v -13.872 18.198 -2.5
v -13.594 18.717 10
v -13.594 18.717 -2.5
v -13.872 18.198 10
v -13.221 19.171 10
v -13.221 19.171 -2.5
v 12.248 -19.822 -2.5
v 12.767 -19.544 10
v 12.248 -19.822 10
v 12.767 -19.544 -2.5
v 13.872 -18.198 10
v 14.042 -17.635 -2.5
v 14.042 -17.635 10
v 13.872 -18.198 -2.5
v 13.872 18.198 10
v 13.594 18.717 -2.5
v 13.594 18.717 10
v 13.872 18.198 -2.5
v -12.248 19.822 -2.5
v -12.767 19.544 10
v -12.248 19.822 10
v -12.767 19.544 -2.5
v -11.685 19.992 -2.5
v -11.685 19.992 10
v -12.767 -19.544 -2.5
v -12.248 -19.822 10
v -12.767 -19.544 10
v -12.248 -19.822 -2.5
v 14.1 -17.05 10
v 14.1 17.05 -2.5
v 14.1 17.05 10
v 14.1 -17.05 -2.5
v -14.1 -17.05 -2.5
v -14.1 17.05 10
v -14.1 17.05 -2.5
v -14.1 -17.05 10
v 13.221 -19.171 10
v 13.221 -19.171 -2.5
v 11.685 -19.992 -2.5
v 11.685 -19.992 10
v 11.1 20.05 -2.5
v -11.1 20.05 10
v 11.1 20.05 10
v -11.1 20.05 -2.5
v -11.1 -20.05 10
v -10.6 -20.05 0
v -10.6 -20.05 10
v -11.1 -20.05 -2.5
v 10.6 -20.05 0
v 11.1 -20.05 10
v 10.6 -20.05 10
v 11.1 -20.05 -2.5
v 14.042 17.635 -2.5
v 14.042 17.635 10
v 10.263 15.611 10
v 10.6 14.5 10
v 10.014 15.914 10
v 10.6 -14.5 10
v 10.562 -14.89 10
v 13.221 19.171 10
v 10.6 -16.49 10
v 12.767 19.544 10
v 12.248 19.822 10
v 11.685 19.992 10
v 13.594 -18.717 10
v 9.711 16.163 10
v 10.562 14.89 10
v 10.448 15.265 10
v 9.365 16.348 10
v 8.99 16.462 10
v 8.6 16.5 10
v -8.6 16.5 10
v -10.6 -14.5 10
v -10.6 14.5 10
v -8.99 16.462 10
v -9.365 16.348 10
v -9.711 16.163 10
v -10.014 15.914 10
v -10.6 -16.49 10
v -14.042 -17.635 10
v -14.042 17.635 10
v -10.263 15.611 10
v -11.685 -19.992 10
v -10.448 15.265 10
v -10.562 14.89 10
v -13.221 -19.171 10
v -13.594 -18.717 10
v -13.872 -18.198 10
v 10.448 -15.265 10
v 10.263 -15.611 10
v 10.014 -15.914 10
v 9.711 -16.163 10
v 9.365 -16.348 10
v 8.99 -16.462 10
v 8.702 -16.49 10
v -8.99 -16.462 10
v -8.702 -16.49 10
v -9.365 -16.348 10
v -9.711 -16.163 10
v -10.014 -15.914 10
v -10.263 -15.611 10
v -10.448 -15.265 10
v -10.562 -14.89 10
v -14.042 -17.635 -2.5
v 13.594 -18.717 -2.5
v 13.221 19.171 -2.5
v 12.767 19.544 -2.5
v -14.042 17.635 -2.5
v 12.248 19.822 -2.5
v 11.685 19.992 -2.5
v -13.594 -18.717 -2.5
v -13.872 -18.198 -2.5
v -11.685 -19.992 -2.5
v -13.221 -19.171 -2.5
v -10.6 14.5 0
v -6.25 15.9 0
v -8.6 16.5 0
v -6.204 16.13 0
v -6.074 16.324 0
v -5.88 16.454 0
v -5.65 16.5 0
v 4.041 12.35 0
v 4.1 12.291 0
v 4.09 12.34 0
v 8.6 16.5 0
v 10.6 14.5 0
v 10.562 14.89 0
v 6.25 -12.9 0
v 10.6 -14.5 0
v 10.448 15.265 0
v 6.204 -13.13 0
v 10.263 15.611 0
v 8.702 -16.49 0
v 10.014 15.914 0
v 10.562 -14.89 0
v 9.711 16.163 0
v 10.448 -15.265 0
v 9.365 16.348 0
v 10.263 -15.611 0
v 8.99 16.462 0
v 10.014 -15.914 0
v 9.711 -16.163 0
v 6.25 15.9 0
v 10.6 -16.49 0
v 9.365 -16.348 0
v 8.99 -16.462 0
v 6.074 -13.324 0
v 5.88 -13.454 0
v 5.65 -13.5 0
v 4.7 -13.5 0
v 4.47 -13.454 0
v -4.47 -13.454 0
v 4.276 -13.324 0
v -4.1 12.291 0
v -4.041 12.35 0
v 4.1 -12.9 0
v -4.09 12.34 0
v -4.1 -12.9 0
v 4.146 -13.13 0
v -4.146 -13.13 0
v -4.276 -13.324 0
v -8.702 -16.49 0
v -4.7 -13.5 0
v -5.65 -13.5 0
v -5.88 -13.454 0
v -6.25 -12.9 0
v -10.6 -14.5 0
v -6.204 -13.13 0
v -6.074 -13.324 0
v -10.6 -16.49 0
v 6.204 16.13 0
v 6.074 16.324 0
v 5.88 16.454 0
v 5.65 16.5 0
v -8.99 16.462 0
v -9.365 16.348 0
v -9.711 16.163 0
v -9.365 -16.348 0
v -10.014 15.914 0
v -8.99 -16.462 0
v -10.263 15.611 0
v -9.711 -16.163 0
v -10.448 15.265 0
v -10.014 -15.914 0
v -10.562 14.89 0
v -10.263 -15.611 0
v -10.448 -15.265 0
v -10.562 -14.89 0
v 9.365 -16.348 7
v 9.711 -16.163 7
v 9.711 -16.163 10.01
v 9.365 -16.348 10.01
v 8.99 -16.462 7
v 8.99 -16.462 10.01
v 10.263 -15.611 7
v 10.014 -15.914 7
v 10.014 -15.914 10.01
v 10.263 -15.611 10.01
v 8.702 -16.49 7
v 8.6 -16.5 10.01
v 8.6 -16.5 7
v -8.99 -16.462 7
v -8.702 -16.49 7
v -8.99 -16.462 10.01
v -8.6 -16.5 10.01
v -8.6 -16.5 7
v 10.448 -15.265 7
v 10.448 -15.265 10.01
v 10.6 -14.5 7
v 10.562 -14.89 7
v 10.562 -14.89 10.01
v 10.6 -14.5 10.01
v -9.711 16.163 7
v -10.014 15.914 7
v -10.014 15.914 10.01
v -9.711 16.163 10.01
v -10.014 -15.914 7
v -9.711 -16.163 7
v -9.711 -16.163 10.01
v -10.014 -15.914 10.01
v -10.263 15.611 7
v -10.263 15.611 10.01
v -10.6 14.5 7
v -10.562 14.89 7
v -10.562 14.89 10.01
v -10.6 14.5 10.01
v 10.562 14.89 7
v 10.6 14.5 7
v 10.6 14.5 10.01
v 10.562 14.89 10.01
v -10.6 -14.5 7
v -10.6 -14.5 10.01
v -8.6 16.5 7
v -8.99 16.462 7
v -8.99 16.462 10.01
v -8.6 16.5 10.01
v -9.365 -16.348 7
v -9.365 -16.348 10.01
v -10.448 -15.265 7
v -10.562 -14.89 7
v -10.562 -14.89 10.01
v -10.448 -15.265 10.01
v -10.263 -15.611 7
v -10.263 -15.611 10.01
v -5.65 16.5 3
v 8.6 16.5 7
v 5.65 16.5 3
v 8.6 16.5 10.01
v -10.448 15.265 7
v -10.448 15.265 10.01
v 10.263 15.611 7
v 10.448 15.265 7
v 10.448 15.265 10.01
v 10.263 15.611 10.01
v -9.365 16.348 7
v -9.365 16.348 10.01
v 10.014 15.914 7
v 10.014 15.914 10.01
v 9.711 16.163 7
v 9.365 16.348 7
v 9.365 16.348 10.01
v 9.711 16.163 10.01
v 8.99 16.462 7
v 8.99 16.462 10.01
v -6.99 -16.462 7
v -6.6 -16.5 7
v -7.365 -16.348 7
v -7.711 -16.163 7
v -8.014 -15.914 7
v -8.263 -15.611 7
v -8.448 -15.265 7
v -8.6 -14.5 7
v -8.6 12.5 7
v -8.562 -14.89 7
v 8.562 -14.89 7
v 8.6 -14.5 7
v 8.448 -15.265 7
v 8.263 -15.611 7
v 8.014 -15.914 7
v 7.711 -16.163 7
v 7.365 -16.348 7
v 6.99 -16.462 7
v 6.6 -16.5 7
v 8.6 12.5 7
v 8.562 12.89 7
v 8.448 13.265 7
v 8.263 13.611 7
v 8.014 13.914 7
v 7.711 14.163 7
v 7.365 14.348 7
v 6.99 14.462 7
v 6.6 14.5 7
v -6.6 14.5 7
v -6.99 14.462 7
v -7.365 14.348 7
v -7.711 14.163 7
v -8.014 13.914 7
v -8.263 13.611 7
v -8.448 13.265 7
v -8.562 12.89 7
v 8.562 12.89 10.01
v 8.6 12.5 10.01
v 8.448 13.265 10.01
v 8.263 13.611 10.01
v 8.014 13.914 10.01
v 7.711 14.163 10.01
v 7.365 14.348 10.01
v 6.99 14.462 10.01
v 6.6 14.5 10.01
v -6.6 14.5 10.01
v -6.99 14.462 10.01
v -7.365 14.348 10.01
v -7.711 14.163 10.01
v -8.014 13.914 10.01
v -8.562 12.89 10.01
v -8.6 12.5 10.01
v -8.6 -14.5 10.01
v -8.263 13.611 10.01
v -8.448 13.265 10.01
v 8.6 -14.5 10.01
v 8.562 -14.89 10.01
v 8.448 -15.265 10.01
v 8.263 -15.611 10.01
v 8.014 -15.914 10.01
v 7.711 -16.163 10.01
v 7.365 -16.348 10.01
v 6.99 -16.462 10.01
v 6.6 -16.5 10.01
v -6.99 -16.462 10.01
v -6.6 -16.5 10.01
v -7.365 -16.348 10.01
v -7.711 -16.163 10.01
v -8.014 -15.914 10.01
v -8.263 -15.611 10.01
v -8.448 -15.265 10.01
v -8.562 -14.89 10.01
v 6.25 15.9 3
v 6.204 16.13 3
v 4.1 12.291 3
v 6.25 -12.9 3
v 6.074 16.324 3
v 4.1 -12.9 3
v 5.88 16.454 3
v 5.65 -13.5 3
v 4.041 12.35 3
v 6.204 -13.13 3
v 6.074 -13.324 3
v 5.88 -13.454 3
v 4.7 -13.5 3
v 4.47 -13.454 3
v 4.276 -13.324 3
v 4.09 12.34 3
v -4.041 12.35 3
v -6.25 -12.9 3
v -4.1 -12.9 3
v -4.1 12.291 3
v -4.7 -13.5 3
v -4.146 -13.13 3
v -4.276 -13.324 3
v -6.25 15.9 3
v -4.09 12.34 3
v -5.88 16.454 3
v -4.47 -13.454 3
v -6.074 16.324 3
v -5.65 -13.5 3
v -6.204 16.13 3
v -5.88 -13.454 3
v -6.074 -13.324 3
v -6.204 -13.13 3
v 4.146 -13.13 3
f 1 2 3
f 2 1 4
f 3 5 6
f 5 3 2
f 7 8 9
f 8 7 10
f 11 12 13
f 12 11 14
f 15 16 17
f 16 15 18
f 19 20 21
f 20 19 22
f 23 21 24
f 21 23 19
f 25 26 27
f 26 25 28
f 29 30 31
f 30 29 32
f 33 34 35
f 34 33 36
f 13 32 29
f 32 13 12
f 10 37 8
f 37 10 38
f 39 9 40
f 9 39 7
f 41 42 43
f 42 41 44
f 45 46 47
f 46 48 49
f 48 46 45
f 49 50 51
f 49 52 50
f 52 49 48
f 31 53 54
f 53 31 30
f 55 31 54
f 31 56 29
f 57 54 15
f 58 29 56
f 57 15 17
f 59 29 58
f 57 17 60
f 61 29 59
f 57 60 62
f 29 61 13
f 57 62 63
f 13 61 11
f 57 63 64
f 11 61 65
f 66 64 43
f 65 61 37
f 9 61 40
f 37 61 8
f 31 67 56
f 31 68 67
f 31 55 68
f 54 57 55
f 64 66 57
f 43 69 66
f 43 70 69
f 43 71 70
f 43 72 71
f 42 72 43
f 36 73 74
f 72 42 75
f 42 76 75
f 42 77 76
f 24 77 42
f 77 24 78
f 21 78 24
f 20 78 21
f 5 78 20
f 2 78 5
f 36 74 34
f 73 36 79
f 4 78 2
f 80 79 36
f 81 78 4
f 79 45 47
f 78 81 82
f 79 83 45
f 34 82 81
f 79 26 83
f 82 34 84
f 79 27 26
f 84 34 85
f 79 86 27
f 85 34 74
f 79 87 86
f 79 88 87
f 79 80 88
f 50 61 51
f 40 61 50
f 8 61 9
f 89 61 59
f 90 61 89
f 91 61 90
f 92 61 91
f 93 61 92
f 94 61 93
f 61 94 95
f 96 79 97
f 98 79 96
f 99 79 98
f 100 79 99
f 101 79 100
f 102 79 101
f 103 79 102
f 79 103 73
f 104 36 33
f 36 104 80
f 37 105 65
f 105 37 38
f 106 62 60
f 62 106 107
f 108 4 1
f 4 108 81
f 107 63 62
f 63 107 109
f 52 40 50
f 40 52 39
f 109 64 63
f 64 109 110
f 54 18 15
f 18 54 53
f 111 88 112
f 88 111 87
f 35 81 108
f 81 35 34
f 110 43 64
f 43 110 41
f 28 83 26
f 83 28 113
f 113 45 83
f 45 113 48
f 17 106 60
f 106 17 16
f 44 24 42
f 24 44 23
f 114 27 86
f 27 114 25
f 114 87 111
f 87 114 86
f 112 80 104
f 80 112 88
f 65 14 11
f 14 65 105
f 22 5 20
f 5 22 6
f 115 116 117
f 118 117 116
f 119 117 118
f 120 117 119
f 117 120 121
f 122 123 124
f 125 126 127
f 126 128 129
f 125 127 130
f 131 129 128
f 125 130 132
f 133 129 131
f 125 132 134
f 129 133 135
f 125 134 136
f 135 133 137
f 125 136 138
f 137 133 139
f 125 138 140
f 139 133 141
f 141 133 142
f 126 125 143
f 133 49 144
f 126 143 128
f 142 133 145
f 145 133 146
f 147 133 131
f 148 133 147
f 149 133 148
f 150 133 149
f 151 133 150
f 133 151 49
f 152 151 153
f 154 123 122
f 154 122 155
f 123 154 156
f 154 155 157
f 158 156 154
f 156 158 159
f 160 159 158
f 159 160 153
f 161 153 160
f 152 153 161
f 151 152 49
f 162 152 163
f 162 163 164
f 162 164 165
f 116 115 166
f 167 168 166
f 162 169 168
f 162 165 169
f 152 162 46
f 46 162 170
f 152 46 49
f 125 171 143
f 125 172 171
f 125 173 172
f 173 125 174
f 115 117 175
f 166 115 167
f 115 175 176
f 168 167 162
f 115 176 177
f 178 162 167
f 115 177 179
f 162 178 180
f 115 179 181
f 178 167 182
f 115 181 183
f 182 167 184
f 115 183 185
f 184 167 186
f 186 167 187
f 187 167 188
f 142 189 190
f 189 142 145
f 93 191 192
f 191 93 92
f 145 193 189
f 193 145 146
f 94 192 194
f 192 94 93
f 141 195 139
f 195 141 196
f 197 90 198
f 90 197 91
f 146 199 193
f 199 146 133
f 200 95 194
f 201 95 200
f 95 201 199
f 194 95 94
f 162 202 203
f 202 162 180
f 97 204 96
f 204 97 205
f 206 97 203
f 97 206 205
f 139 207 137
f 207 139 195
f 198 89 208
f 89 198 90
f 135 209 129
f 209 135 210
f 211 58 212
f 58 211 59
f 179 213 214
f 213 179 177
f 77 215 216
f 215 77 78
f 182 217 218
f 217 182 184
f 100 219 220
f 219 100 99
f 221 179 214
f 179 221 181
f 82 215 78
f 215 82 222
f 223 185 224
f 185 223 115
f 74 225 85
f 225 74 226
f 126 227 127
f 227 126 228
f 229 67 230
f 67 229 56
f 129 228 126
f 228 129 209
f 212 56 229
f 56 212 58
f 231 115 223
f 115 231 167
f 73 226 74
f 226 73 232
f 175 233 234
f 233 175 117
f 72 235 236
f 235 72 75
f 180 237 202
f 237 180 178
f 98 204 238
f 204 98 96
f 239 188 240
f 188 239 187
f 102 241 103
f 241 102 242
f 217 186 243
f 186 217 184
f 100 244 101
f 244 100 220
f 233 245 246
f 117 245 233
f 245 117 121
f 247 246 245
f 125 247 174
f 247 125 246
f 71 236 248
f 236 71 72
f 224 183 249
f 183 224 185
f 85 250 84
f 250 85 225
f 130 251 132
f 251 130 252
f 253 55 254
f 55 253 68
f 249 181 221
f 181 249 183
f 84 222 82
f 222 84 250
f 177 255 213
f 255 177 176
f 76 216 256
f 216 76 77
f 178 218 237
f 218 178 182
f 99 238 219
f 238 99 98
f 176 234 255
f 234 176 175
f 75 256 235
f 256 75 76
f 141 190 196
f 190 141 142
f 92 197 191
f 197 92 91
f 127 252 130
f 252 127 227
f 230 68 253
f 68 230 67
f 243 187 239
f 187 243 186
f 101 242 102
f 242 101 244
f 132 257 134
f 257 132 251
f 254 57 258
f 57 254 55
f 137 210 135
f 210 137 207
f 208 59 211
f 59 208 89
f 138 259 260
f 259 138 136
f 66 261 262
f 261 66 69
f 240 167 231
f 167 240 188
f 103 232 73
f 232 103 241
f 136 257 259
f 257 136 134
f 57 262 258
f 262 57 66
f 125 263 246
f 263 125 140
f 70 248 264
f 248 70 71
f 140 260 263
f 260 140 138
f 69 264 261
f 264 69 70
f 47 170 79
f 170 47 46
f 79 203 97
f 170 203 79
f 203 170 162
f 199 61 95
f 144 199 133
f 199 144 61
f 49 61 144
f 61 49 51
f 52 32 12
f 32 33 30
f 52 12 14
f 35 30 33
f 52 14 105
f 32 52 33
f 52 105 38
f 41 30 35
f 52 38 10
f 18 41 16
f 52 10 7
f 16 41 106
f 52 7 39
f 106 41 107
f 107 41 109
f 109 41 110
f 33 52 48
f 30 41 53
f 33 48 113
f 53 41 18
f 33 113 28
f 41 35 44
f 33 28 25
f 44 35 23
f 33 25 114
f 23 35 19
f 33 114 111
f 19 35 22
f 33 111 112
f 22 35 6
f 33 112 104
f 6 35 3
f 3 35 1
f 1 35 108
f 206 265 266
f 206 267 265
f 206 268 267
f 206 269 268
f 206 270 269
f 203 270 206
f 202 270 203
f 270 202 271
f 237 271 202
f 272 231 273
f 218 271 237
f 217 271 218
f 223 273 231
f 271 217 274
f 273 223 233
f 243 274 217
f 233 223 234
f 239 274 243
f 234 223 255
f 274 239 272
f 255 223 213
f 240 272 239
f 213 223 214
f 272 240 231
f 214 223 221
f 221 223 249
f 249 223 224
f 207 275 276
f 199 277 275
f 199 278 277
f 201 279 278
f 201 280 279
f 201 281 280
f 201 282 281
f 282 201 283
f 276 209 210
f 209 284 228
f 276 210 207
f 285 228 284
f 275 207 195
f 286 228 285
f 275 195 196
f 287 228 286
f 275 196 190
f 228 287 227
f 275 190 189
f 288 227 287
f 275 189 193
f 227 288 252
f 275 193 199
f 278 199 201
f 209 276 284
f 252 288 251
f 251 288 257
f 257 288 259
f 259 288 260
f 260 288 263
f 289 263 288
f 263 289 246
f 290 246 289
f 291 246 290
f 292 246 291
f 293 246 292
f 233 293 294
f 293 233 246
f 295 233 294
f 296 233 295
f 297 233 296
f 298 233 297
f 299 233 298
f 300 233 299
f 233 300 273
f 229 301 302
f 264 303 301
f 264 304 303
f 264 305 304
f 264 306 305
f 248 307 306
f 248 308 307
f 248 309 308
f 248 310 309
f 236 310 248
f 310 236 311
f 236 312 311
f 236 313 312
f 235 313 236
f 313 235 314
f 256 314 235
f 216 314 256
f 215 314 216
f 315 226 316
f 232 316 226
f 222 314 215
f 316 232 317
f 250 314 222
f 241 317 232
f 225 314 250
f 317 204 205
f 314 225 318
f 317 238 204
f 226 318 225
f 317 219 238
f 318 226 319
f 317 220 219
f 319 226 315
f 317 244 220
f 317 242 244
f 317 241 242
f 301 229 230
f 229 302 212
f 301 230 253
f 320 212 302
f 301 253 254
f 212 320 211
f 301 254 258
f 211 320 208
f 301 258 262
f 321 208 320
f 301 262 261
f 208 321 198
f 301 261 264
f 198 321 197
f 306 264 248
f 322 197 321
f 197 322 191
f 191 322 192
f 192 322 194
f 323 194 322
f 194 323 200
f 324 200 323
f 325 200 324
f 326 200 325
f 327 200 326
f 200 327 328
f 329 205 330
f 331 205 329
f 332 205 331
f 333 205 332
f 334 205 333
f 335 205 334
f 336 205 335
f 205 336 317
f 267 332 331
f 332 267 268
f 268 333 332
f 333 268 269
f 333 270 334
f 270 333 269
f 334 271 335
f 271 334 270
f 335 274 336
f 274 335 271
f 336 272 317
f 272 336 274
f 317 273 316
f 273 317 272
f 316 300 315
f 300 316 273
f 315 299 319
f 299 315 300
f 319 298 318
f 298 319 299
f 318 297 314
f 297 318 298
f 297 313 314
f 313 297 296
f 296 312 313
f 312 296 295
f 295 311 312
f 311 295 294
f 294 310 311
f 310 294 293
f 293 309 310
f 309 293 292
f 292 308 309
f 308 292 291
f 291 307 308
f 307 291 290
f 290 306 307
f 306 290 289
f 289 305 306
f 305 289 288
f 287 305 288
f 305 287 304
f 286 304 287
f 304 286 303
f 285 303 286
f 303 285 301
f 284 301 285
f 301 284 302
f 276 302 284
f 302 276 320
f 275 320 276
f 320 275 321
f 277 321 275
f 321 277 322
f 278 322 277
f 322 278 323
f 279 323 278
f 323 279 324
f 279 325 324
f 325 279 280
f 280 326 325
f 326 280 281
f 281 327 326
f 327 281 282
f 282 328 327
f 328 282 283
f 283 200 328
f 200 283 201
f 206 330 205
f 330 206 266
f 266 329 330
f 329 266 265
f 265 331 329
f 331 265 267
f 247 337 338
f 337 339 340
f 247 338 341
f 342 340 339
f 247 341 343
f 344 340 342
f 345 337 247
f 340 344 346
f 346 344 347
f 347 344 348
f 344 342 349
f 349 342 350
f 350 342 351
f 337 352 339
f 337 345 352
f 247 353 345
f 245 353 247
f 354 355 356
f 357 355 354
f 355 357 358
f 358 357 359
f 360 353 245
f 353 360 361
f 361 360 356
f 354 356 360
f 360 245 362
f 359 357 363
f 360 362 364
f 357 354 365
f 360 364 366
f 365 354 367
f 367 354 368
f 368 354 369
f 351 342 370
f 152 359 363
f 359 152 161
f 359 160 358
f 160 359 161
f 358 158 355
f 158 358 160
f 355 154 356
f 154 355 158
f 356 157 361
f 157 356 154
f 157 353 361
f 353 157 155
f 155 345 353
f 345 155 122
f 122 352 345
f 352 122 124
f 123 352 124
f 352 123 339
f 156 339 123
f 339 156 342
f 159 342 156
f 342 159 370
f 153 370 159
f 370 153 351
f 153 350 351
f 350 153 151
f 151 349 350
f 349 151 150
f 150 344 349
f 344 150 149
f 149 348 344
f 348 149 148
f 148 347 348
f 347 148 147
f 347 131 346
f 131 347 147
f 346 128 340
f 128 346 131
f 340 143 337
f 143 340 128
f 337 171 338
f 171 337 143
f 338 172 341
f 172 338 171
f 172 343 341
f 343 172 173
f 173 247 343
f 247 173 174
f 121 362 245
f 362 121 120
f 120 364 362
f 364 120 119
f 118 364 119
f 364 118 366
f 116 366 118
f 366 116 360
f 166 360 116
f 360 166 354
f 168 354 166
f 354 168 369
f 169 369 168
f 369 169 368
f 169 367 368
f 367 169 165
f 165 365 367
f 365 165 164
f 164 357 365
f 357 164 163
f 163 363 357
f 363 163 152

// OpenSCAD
// file: common.scad
BORDER = 1.6;
IN_X = 98;
IN_Y = 78;
IN_Z = 7;

module battery_case() {
    difference() {  
        translate([0,0,-BORDER])
            cube([18, 33+BORDER, 5+BORDER]);
        cube([18,33, 5]);
        translate([0, 0, -BORDER])
            cube([2, 25, BORDER/2]);
        translate([18-2, 0, -BORDER])
            cube([2, 25, BORDER/2]);
    }
}


module btnhole() {
    cube([5,10,10]);
}

module m2hole(h) {
    difference() {
        cylinder(h, 2, 2, $fn=10);
        metric_thread (diameter=2, pitch=0.4, length=h+0.1);
    }
    
}
// file: bambu-x1c.scad
// Bambu Lab X1 Carbon — build volume and dimension reporting

BED_X = 256;
BED_Y = 256;
BED_Z = 256;

// Assert a part fits within the build volume.
// Call with the bounding box dimensions of your part.
module assert_fits(x, y, z) {
  assert(x <= BED_X, str("Part X (", x, "mm) exceeds bed X (", BED_X, "mm)"));
  assert(y <= BED_Y, str("Part Y (", y, "mm) exceeds bed Y (", BED_Y, "mm)"));
  assert(z <= BED_Z, str("Part Z (", z, "mm) exceeds bed Z (", BED_Z, "mm)"));
}

// Echo dimensions in a parseable format for the Node.js pipeline.
// Call at the end of your .scad file with the part's bounding box.
module report_dimensions(x, y, z, label="part") {
  assert_fits(x, y, z);
  echo(str("DIMENSION:", label, ":x=", x));
  echo(str("DIMENSION:", label, ":y=", y));
  echo(str("DIMENSION:", label, ":z=", z));
}
// file: fdm-pla.scad
// FDM PLA Tolerance Constants
// Use these in all designs to ensure proper fit on the Bambu X1C.

// Fit offsets (applied to radius or per-side dimension)
FDM_PRESS_FIT     = -0.15;  // Friction-held joints
FDM_CLEARANCE_FIT =  0.25;  // Easy insert/remove
FDM_SLIDING_FIT   =  0.35;  // Moving parts

// Hole compensation (applied to diameter)
FDM_HOLE_COMPENSATION = 0.4;

// Structural minimums
MIN_WALL = 1.2;       // 3 perimeters at 0.4mm nozzle
MIN_FLOOR_CEIL = 0.8; // 4 layers at 0.2mm

// Overhang and bridging limits
MAX_OVERHANG_ANGLE = 45;  // degrees from vertical
MAX_BRIDGE_SPAN    = 10;  // mm unsupported horizontal span

// Layer and nozzle
NOZZLE_DIA   = 0.4;
LAYER_HEIGHT = 0.2;
// main file
// Shibumi Mount Adapter — Phase 1: capture socket (attachment mechanism only)
//
// A slide-in CAPTURE SOCKET. A flat cleat blade (27.6 wide x 4.02 thick, reference
// only — NOT modeled) enters the OPEN mouth end (-Y) and slides in LENGTHWISE (+Y).
// The two long side-wall tops curl inward into LIPS that trap the blade's back face;
// two thin floor RAILS set the blade's seating height; a closed ARCH BRIDGE caps the
// far (+Y) end. Decorative sewing terraces + flange of the original are DROPPED.
//
// Coordinate system:
//   origin = socket FLOOR center
//   +Z up  = socket opens upward (cleat back captured under lips)
//   +Y     = long axis; -Y = OPEN MOUTH (cleat enters here), +Y = closed arch bridge
//   +X     = short axis
//
// v1 = FAITHFUL NOMINAL reproduction — NO internal taper (that is a later fit round).
// The inward lips are an undercut/overhang: see printability note in modeling report.

include <fdm-pla.scad>
include <bambu-x1c.scad>
include <common.scad>

// ============================================================================
// Render quality (draft during iteration; shipper bumps via -D)
// ============================================================================
$fn         = 100;   // draft; shipper bumps to 200 via -D
corner_pts  = 32;    // arc points on rounded corners; ship ~96 via -D

// ============================================================================
// PARAMETERS — every dimension is a top-level variable
// ============================================================================

// --- Backing plate (below the socket floor) ---
backing_x         = 28.2;   // short axis
backing_y         = 40.1;   // long axis
backing_thickness = 2.5;    // z below floor
backing_corner_r  = 3.0;    // rounded corners of the plate

// --- Outer socket footprint + walls ---
socket_outer_x    = 28.2;   // short axis, outer
socket_outer_y    = 40.1;   // long axis, outer
wall_base_thick   = 3.5;    // side-wall thickness at the base
standoff_height   = 10.0;   // floor (z=0) -> wall top
outer_corner_r    = 3.0;    // rounded outer corners of the socket body

// --- Inner cavity (open toward +Z) ---
cavity_x          = 21.2;   // short axis, inner (floor width)
cavity_y          = 33.0;   // long axis, inner (floor length)
cavity_corner_r   = 2.0;    // rounded inner corners

// --- Capture lips (top of the two LONG walls + the far arch end) ---
lip_overhang      = 2.0;    // inward overhang, per side
lip_zone_height   = 3.0;    // lips occupy the TOP 3 mm of the walls
// => socket depth under the lip = standoff_height - lip_zone_height = 7.0

// --- Arch bridge (far +Y end) ---
arch_wall_thick   = 3.5;    // end-wall thickness at base (same as side walls)

// --- Inverted-U floor tongue (two rails + rounded bridge at far end) ---
rail_width        = 2.15;   // each rail, in X
rail_height       = 3.0;    // above floor
rail_offset       = 4.5;    // gap from inner side wall to near edge of rail
central_slot      = 8.2;    // gap between the two rails
rail_corner_r     = 0.6;    // slight rounding on rail top edges (cosmetic)

// ============================================================================
// DERIVED
// ============================================================================
socket_depth      = standoff_height - lip_zone_height;   // 7.0, floor -> lip underside
lip_bottom_z      = socket_depth;                        // where the overhang starts
lip_top_z         = standoff_height;                     // wall top

// Rail center X positions (symmetric about X=0).
// From wall: inner cavity edge at cavity_x/2; rail near edge at cavity_x/2 - rail_offset.
rail_inner_x      = central_slot/2;                      // near edge (toward center)
rail_outer_x      = central_slot/2 + rail_width;         // far edge (toward wall)
rail_center_x     = (rail_inner_x + rail_outer_x) / 2;

// Rail run in Y: from mouth-side (rails do NOT reach the mouth) to far bridge.
// Anchor the inverted-U bridge at the far (+Y) cavity end; rails run back toward
// the mouth but stop short of it.
rail_y_far        = cavity_y/2;                          // far end (bridge, +Y)
rail_bridge_depth = rail_width + 2;                      // rounded bridge span in Y
rail_y_near       = -cavity_y/2 + 3;                     // near end (stops short of mouth)

// Total bbox
total_z           = backing_thickness + standoff_height;

// ============================================================================
// ASSERTIONS
// ============================================================================
assert(wall_base_thick >= MIN_WALL, str("Wall ", wall_base_thick, " < MIN_WALL ", MIN_WALL));
assert(wall_base_thick - lip_overhang >= 0.8,
    str("Lip residual wall ", wall_base_thick - lip_overhang, " too thin"));
assert(socket_depth > 0, "socket_depth must be positive");
assert(cavity_x + 2*wall_base_thick <= socket_outer_x + 0.01,
    str("cavity+walls ", cavity_x + 2*wall_base_thick, " != outer ", socket_outer_x));

// ============================================================================
// HELPERS
// ============================================================================

// A rounded rectangular prism centered in X/Y, base at z=0.
module rrect_prism(sx, sy, sz, r, fn=corner_pts) {
    linear_extrude(height=sz)
        offset(r=r) offset(r=-r)
            square([sx, sy], center=true);
}

// True rounded rect via minkowski-free offset on a square (cleaner corners).
module rrect(sx, sy, r, fn=corner_pts) {
    offset(r=r, $fn=fn) offset(r=-r, $fn=fn)
        square([sx, sy], center=true);
}

// ============================================================================
// SOCKET BODY (walls) — subtract cavity, then form lips
// ============================================================================

module socket_walls() {
    difference() {
        // Outer block, floor at z=0, top at standoff_height.
        linear_extrude(height=standoff_height)
            rrect(socket_outer_x, socket_outer_y, outer_corner_r);

        // --- Main cavity (full depth, straight walls up to the top) ---
        // Cut a through cavity from the floor up past the top so we can re-add lips.
        translate([0, 0, -0.01])
            linear_extrude(height=standoff_height + 0.02)
                rrect(cavity_x, cavity_y, cavity_corner_r);
    }
}

// The mouth must be fully open: cavity extends out through the -Y face.
// We build the wall body and cavity so the -Y end has NO wall and NO lip.
module socket_body() {
    difference() {
        socket_walls();
        // Extend the cavity opening out through the mouth face so no end wall
        // remains at -Y (lengthwise entry). Slightly over-wide to clear corners.
        translate([0, -socket_outer_y/2 - 0.02, -0.01])
            linear_extrude(height=standoff_height + 0.02)
                translate([-cavity_x/2, 0])
                    square([cavity_x, socket_outer_y/2 - cavity_y/2 + 0.03]);
    }
}

// ============================================================================
// CAPTURE LIPS
// The cavity above lip_bottom_z narrows by lip_overhang on each LONG side and
// on the FAR (+Y) arch end, but NOT on the mouth (-Y) side. We modeled the
// cavity full-width above; now ADD material back in the lip zone to form the
// inward overhang. Simpler: model lips as added inner ledges.
// ============================================================================

module capture_lips() {
    // Lip zone spans lip_bottom_z .. lip_top_z.
    // The lip is a ring that hugs the cavity but is inset by lip_overhang on the
    // two long sides and the far end. On the mouth side it is flush with the
    // cavity (no lip) so the opening stays clear.

    lip_inner_x = cavity_x - 2*lip_overhang;   // narrowed opening width
    // Long-axis: the lip band must land on the FAR (+Y arch) end, and there must be
    // NO band across the -Y MOUTH (the cleat slides in there). Shorten the hole by
    // lip_overhang and shift it toward -Y so its -Y edge reaches the cavity mouth
    // edge => no crossbar over the mouth; the leftover band sits at +Y.
    lip_inner_y = cavity_y - lip_overhang;     // shortened by one lip at the far end
    lip_center_y = -lip_overhang/2;            // shift hole toward -Y (mouth) => band only at +Y

    translate([0, 0, lip_bottom_z])
        linear_extrude(height=lip_zone_height + 0.01)
            difference() {
                // outer bound = the wall inner face (cavity outline)
                rrect(cavity_x, cavity_y, cavity_corner_r);
                // inner bound = narrowed opening (the lip hole)
                translate([0, lip_center_y])
                    rrect(lip_inner_x, lip_inner_y, cavity_corner_r);
            }
    // The inner hole is shifted -Y so its mouth edge reaches the cavity edge =>
    // lips run the two long walls + the far arch end, and the MOUTH stays fully open.
}

// ============================================================================
// FLOOR RAILS — inverted-U tongue (two rails + rounded far bridge)
// ============================================================================

module floor_rails() {
    // Two straight rails running in Y, plus a rounded bridge joining them at +Y.
    rail_len_y = rail_y_far - rail_y_near;
    rail_mid_y = (rail_y_far + rail_y_near) / 2;

    translate([0, 0, 0])
    linear_extrude(height=rail_height)
        offset(r=rail_corner_r, $fn=16) offset(r=-rail_corner_r, $fn=16)
        union() {
            // left rail
            translate([-rail_center_x, rail_mid_y])
                square([rail_width, rail_len_y], center=true);
            // right rail
            translate([ rail_center_x, rail_mid_y])
                square([rail_width, rail_len_y], center=true);
            // rounded bridge at far (+Y) end joining the two rails (closed U)
            translate([0, rail_y_far - rail_bridge_depth/2])
                square([2*rail_center_x + rail_width, rail_bridge_depth], center=true);
        }
}

// ============================================================================
// BACKING PLATE
// ============================================================================

module backing_plate() {
    translate([0, 0, -backing_thickness])
        linear_extrude(height=backing_thickness)
            rrect(backing_x, backing_y, backing_corner_r);
}

// ============================================================================
// ASSEMBLY — single manifold solid
// ============================================================================

module shibumi_mount() {
    union() {
        backing_plate();
        socket_body();
        capture_lips();
        floor_rails();
    }
}

shibumi_mount();

// ============================================================================
// DIMENSION REPORT
// ============================================================================
report_dimensions(
    max(backing_x, socket_outer_x),
    max(backing_y, socket_outer_y),
    total_z,
    "shibumi-mount-adapter"
);
